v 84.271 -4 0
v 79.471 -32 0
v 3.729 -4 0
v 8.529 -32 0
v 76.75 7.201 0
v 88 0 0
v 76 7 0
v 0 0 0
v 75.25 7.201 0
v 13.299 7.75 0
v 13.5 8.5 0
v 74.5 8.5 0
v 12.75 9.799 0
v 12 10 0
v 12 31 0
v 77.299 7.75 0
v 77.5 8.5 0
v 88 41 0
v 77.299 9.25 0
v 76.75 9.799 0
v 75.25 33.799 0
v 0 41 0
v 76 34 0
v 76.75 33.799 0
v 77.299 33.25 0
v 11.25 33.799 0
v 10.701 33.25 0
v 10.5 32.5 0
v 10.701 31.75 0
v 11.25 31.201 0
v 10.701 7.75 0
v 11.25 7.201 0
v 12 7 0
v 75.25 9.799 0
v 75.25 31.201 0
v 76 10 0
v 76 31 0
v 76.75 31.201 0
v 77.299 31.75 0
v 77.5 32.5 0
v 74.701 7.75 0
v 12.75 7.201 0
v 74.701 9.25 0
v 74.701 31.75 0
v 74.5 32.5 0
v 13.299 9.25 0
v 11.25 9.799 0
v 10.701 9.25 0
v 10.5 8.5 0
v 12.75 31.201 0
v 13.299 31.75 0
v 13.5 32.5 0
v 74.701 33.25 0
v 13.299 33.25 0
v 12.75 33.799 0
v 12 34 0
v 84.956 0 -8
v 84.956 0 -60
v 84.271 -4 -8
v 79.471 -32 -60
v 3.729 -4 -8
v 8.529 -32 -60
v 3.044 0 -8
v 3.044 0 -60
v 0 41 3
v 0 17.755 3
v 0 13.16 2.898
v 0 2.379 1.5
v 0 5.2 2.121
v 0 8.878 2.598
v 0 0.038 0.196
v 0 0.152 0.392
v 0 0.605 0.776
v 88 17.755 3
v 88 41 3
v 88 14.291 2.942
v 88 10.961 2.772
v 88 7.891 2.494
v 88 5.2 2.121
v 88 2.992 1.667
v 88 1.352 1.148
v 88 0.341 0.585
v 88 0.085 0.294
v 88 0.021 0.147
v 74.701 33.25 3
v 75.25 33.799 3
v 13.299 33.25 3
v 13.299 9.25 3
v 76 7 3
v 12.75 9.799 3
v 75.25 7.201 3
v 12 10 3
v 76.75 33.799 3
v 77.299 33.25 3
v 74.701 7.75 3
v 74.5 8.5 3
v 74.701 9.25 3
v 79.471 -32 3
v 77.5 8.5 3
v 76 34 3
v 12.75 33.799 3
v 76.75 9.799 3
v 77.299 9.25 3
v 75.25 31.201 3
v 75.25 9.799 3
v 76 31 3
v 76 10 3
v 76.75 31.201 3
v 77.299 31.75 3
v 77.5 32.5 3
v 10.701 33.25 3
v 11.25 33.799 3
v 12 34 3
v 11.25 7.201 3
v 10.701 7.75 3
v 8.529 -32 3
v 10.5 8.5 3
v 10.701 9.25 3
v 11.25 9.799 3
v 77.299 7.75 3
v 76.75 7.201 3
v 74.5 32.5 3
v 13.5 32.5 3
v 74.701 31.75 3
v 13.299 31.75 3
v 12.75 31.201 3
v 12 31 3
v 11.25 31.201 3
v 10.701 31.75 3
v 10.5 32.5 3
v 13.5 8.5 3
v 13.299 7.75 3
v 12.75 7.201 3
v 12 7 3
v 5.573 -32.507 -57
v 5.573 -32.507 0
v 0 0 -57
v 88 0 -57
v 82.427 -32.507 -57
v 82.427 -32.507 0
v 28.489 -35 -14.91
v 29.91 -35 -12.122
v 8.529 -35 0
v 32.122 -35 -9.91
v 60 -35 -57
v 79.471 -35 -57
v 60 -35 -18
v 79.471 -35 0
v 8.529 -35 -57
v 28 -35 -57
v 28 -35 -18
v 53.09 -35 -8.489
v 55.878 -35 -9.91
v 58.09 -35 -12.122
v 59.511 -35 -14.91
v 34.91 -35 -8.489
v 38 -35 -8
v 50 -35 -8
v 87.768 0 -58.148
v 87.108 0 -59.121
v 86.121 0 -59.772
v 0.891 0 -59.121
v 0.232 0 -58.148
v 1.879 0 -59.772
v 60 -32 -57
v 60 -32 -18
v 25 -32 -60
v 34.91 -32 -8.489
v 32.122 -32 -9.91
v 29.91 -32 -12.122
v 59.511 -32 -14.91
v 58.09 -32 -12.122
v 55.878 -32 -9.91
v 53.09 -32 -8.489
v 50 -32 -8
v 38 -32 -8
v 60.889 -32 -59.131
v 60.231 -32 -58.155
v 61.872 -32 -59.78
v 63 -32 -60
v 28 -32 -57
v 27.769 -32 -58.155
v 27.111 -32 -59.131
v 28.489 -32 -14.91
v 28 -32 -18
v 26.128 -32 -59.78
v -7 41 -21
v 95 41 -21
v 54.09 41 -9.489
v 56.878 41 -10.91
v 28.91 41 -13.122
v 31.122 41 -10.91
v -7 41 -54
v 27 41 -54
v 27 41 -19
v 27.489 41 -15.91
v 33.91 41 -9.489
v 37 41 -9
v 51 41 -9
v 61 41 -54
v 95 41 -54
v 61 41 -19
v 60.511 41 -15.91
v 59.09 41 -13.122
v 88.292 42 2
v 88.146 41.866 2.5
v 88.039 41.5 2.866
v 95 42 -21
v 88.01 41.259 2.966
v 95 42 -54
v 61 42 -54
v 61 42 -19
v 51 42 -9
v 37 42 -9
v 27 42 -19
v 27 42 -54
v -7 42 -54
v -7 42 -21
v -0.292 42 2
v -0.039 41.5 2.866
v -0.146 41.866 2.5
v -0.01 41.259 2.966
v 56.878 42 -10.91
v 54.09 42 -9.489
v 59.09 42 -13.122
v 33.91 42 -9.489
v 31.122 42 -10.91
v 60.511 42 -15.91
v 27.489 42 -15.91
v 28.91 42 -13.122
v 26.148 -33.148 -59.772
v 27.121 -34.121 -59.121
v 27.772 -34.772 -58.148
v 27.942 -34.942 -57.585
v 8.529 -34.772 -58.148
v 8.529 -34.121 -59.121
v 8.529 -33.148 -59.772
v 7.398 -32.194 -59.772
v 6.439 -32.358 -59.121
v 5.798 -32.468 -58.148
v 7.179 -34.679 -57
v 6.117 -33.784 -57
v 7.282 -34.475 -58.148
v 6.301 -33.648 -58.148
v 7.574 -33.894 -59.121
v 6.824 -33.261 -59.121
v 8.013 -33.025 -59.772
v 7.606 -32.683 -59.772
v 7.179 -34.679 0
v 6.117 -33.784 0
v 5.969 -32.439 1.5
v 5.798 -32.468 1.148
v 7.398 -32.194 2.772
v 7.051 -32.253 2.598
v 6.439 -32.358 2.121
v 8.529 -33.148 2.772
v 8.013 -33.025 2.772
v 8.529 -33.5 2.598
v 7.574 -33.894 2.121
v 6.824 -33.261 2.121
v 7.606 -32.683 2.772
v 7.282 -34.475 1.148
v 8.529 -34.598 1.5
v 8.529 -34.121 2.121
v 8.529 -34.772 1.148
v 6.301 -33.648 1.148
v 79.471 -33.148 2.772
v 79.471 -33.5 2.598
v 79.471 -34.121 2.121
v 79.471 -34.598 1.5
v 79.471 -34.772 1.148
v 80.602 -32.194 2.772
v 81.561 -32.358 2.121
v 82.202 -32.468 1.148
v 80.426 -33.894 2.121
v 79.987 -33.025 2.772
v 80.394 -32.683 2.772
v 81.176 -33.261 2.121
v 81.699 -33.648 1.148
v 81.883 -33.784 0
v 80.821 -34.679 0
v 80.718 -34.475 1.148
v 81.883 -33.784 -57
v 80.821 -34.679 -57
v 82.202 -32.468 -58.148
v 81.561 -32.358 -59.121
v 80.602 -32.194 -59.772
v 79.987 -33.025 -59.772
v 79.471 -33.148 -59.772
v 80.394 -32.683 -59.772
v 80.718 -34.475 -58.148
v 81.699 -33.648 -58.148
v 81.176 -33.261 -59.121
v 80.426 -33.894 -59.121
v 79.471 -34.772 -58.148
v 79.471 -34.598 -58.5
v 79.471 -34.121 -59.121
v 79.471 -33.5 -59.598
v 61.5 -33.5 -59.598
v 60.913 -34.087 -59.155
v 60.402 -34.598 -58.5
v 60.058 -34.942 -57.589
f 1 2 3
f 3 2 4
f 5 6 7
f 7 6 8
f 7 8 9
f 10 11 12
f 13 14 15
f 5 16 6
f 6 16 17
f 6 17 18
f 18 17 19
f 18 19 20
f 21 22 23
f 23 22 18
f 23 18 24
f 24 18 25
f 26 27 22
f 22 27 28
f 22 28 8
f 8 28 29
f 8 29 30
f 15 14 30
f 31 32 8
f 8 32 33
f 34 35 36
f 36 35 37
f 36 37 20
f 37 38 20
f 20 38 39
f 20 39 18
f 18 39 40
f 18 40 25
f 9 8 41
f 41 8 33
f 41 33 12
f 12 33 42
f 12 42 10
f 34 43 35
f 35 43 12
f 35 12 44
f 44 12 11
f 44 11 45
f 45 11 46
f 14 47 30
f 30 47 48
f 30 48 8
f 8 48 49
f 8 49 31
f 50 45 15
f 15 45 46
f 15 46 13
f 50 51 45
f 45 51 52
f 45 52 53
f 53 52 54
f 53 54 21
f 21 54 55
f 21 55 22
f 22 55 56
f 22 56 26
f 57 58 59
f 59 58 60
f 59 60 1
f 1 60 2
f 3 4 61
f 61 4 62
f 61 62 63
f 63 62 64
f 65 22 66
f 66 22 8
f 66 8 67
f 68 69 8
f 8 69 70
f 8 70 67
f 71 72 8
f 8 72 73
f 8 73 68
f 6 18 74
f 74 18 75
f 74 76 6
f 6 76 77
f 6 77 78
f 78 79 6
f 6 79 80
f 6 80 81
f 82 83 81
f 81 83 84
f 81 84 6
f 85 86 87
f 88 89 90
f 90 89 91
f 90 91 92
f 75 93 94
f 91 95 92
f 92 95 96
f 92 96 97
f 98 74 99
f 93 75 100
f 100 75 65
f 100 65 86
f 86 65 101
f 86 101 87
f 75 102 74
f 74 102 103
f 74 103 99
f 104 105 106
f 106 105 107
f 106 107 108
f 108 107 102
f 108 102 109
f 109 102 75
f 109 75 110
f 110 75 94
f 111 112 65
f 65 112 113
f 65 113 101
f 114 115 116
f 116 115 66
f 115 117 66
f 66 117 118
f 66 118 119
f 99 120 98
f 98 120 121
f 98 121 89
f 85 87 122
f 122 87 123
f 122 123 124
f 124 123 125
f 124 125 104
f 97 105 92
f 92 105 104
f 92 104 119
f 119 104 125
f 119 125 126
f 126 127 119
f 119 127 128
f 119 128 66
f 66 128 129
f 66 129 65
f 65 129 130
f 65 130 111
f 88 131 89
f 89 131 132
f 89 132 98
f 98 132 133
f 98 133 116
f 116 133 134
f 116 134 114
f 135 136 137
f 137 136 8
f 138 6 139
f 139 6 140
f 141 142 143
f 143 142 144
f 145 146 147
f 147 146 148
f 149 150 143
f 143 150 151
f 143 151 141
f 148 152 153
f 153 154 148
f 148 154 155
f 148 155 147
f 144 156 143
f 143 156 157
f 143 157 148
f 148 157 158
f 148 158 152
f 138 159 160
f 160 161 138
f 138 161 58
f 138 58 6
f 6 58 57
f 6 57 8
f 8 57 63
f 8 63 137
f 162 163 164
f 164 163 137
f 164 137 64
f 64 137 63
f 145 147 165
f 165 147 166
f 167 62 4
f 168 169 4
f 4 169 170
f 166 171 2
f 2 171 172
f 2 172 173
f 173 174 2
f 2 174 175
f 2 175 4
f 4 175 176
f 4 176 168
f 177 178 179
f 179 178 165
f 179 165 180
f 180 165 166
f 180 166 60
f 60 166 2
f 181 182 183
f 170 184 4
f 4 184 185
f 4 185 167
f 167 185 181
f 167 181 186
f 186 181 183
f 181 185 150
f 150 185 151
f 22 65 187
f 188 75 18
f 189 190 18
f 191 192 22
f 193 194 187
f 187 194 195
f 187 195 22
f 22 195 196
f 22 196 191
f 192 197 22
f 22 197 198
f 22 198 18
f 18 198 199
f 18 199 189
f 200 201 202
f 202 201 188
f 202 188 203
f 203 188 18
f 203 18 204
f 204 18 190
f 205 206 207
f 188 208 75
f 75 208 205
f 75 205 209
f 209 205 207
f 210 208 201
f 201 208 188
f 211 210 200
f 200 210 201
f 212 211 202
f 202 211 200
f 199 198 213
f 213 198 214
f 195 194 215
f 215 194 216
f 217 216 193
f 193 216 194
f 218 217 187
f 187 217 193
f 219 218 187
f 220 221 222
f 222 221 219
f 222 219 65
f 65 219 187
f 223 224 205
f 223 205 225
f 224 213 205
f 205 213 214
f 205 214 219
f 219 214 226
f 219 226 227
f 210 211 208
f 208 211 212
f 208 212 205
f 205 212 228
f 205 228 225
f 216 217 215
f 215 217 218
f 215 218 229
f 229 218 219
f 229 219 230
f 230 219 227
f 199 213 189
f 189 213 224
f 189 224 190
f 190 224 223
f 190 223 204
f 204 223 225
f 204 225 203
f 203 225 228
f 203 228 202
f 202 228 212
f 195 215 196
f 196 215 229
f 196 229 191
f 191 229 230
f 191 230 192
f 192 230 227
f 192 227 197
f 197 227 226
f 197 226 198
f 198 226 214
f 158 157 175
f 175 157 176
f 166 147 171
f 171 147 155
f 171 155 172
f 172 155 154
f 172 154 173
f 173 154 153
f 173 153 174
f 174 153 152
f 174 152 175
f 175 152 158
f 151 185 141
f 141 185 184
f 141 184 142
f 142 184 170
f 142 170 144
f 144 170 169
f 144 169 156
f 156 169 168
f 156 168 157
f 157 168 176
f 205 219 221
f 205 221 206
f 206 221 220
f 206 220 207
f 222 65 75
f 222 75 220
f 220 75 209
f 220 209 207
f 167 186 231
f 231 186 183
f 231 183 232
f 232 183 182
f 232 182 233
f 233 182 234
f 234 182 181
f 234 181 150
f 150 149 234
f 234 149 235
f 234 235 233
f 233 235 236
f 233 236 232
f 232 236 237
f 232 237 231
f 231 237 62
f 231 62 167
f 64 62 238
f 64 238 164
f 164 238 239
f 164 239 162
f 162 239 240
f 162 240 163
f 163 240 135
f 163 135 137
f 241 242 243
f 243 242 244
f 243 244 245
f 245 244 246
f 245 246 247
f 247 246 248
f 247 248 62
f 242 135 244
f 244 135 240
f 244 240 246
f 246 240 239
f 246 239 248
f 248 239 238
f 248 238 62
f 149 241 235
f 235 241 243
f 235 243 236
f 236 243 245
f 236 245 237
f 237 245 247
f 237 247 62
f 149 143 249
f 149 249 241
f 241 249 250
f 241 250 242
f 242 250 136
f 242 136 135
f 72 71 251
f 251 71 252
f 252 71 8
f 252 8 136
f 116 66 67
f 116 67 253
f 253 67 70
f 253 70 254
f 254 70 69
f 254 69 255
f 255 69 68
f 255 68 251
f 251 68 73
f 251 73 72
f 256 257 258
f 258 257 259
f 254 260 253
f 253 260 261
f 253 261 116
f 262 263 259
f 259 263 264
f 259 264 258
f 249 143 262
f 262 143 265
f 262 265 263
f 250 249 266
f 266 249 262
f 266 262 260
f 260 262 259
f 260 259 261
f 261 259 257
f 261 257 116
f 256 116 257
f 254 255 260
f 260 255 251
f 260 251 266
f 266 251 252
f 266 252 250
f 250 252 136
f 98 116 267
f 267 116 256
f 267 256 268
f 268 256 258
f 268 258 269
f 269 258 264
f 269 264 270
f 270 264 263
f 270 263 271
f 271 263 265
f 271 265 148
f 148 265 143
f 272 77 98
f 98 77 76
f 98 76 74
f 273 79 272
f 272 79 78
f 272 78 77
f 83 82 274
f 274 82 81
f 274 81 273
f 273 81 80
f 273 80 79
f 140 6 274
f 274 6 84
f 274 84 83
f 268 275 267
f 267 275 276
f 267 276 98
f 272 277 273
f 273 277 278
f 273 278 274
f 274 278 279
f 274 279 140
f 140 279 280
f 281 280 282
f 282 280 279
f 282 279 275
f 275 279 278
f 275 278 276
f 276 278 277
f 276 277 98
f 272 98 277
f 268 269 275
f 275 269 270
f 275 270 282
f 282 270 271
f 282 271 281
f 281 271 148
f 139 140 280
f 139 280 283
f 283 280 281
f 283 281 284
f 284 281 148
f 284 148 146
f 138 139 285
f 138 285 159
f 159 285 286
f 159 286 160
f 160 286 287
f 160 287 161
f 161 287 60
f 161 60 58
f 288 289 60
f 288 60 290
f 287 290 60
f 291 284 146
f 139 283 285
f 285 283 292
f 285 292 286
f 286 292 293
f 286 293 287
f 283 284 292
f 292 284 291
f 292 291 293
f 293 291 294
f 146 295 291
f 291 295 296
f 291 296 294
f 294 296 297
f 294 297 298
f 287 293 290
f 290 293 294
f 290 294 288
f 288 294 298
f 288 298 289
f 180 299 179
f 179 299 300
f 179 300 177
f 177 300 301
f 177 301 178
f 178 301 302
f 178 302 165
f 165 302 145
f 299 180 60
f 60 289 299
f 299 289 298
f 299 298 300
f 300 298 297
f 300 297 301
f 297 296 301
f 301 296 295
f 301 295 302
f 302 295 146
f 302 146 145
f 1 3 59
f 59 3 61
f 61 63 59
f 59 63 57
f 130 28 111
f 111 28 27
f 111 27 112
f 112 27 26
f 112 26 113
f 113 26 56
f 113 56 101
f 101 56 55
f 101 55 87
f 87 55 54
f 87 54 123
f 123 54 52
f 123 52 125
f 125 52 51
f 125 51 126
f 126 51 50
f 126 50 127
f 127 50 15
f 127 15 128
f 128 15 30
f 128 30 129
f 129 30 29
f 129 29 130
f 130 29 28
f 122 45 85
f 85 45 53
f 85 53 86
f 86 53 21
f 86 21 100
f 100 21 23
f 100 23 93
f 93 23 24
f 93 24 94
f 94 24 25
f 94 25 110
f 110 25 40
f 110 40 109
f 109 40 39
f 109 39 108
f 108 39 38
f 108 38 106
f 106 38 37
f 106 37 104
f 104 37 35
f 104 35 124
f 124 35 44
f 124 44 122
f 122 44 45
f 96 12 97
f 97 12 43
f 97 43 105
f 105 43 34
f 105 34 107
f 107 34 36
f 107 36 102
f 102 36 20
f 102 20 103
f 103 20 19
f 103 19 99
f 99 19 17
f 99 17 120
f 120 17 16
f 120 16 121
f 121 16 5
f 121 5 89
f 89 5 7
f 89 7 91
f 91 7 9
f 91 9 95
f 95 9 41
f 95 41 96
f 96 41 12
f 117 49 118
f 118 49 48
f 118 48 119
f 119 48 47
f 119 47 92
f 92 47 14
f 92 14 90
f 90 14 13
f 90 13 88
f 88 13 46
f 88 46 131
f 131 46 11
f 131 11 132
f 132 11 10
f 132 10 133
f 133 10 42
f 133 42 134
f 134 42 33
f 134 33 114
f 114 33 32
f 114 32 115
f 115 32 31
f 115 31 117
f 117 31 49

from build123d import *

# Parameters (mm, degrees)
SKETCH1_W           = 88
SKETCH1_H           = 41
BOSS_EXTRUDE1_DEPTH = 3
BOSS_EXTRUDE2_DEPTH = 3
BOSS_EXTRUDE3_DEPTH = 60
BOSS_EXTRUDE4_DEPTH = 1
FILLET1_R           = 10
SKETCH5_W           = 32
SKETCH5_H           = 3
BOSS_EXTRUDE5_DEPTH = 8
FILLET2_R           = 10
FILLET6_R           = 1
FILLET12_R          = 3
SKETCH6_W           = 81.912475118
SKETCH6_H           = 4
BOSS_EXTRUDE6_DEPTH = 8
SKETCH7_R           = 1.5
CUT_EXTRUDE1_DEPTH  = 3


with BuildPart() as part:
    # Sketch1 → Boss-Extrude1 (new body)
    with BuildSketch(Plane.XY):
        with Locations((44, 20.5)):
            Rectangle(SKETCH1_W, SKETCH1_H)
    extrude(amount=BOSS_EXTRUDE1_DEPTH)

    # Sketch2 → Boss-Extrude2 (add)
    with BuildSketch(Plane.XY.offset(3)):
        Polygon((0, 0), (88, 0), (82, -35), (6, -35), align=None)
    extrude(amount=-BOSS_EXTRUDE2_DEPTH)

    # Sketch3 → Boss-Extrude3 (add)
    with BuildSketch(Plane(origin=(0, 0, 0), x_dir=(-1, 0, 0), z_dir=(0, 0, -1))):
        Polygon((-82, -35), (-88, 0), (-84.956237559, 0), (-79.470523274, -32), (-60, -32), (-60, -35), align=None)
        Polygon((-28, -35), (-6, -35), (0, 0), (-3.043762441, 0), (-8.529476726, -32), (-28, -32), align=None)
    extrude(amount=BOSS_EXTRUDE3_DEPTH)

    # Sketch4 → Boss-Extrude4 (add)
    with BuildSketch(Plane(origin=(0, 41, 0), x_dir=(1, 0, 0), z_dir=(0, 1, 0))):
        Polygon((0, -3), (-7, 21), (-7, 54), (27, 54), (27, 9), (61, 9), (61, 54), (95, 54), (95, 21), (88, -3), align=None)
    extrude(amount=BOSS_EXTRUDE4_DEPTH)

    # Fillet1
    fillet1_edges = [part.edges().sort_by_distance(p)[0] for p in [
        (61, 41.5, -9),
        (27, 41.5, -9),
    ]]
    fillet(fillet1_edges, radius=FILLET1_R)

    # Sketch5 → Boss-Extrude5 (add)
    with BuildSketch(Plane(origin=(0, 0, 0), x_dir=(-1, 0, 0), z_dir=(0, 0, -1))):
        with Locations((-44, -33.5)):
            Rectangle(SKETCH5_W, SKETCH5_H)
    extrude(amount=BOSS_EXTRUDE5_DEPTH)

    # Fillet2
    fillet2_edges = [part.edges().sort_by_distance(p)[0] for p in [
        (60, -33.5, -8),
        (28, -33.5, -8),
    ]]
    fillet(fillet2_edges, radius=FILLET2_R)

    # Fillet6
    fillet6_edges = [part.edges().sort_by_distance(p)[0] for p in [
        (44, 42, 3),
    ]]
    fillet(fillet6_edges, radius=FILLET6_R)

    # Fillet12
    fillet12_edges = [part.edges().sort_by_distance(p)[0] for p in [
        (85, -17.5, -60),
        (60, -33.5, -60),
        (28, -33.5, -60),
        (3, -17.5, -60),
        (3, -17.5, 3),
        (85, -17.5, 3),
        (71, -35, -60),
        (17, -35, -60),
        (82, -35, -28.5),
        (6, -35, -28.5),
        (44, -35, 3),
    ]]
    fillet(fillet12_edges, radius=FILLET12_R - 0.0001)  # a hair under: the kernel refuses the full size

    # Sketch6 → Boss-Extrude6 (add)
    with BuildSketch(Plane(origin=(0, 0, 0), x_dir=(-1, 0, 0), z_dir=(0, 0, -1))):
        with Locations((-44, -2)):
            Rectangle(SKETCH6_W, SKETCH6_H)
    extrude(amount=BOSS_EXTRUDE6_DEPTH)

    # Sketch7 → Cut-Extrude1 (cut)
    with BuildSketch(Plane(origin=(0, 0, 0), x_dir=(-1, 0, 0), z_dir=(0, 0, -1))):
        with Locations((-12, 32.5)):
            Circle(SKETCH7_R)
        with Locations(Location((-76, 32.5, 0), (0, 0, 180))):
            Circle(SKETCH7_R)
        with Locations((-76, 8.5)):
            Circle(SKETCH7_R)
        with Locations(Location((-12, 8.5, 0), (0, 0, 180))):
            Circle(SKETCH7_R)
    extrude(amount=-CUT_EXTRUDE1_DEPTH, mode=Mode.SUBTRACT)


solid = part.part
